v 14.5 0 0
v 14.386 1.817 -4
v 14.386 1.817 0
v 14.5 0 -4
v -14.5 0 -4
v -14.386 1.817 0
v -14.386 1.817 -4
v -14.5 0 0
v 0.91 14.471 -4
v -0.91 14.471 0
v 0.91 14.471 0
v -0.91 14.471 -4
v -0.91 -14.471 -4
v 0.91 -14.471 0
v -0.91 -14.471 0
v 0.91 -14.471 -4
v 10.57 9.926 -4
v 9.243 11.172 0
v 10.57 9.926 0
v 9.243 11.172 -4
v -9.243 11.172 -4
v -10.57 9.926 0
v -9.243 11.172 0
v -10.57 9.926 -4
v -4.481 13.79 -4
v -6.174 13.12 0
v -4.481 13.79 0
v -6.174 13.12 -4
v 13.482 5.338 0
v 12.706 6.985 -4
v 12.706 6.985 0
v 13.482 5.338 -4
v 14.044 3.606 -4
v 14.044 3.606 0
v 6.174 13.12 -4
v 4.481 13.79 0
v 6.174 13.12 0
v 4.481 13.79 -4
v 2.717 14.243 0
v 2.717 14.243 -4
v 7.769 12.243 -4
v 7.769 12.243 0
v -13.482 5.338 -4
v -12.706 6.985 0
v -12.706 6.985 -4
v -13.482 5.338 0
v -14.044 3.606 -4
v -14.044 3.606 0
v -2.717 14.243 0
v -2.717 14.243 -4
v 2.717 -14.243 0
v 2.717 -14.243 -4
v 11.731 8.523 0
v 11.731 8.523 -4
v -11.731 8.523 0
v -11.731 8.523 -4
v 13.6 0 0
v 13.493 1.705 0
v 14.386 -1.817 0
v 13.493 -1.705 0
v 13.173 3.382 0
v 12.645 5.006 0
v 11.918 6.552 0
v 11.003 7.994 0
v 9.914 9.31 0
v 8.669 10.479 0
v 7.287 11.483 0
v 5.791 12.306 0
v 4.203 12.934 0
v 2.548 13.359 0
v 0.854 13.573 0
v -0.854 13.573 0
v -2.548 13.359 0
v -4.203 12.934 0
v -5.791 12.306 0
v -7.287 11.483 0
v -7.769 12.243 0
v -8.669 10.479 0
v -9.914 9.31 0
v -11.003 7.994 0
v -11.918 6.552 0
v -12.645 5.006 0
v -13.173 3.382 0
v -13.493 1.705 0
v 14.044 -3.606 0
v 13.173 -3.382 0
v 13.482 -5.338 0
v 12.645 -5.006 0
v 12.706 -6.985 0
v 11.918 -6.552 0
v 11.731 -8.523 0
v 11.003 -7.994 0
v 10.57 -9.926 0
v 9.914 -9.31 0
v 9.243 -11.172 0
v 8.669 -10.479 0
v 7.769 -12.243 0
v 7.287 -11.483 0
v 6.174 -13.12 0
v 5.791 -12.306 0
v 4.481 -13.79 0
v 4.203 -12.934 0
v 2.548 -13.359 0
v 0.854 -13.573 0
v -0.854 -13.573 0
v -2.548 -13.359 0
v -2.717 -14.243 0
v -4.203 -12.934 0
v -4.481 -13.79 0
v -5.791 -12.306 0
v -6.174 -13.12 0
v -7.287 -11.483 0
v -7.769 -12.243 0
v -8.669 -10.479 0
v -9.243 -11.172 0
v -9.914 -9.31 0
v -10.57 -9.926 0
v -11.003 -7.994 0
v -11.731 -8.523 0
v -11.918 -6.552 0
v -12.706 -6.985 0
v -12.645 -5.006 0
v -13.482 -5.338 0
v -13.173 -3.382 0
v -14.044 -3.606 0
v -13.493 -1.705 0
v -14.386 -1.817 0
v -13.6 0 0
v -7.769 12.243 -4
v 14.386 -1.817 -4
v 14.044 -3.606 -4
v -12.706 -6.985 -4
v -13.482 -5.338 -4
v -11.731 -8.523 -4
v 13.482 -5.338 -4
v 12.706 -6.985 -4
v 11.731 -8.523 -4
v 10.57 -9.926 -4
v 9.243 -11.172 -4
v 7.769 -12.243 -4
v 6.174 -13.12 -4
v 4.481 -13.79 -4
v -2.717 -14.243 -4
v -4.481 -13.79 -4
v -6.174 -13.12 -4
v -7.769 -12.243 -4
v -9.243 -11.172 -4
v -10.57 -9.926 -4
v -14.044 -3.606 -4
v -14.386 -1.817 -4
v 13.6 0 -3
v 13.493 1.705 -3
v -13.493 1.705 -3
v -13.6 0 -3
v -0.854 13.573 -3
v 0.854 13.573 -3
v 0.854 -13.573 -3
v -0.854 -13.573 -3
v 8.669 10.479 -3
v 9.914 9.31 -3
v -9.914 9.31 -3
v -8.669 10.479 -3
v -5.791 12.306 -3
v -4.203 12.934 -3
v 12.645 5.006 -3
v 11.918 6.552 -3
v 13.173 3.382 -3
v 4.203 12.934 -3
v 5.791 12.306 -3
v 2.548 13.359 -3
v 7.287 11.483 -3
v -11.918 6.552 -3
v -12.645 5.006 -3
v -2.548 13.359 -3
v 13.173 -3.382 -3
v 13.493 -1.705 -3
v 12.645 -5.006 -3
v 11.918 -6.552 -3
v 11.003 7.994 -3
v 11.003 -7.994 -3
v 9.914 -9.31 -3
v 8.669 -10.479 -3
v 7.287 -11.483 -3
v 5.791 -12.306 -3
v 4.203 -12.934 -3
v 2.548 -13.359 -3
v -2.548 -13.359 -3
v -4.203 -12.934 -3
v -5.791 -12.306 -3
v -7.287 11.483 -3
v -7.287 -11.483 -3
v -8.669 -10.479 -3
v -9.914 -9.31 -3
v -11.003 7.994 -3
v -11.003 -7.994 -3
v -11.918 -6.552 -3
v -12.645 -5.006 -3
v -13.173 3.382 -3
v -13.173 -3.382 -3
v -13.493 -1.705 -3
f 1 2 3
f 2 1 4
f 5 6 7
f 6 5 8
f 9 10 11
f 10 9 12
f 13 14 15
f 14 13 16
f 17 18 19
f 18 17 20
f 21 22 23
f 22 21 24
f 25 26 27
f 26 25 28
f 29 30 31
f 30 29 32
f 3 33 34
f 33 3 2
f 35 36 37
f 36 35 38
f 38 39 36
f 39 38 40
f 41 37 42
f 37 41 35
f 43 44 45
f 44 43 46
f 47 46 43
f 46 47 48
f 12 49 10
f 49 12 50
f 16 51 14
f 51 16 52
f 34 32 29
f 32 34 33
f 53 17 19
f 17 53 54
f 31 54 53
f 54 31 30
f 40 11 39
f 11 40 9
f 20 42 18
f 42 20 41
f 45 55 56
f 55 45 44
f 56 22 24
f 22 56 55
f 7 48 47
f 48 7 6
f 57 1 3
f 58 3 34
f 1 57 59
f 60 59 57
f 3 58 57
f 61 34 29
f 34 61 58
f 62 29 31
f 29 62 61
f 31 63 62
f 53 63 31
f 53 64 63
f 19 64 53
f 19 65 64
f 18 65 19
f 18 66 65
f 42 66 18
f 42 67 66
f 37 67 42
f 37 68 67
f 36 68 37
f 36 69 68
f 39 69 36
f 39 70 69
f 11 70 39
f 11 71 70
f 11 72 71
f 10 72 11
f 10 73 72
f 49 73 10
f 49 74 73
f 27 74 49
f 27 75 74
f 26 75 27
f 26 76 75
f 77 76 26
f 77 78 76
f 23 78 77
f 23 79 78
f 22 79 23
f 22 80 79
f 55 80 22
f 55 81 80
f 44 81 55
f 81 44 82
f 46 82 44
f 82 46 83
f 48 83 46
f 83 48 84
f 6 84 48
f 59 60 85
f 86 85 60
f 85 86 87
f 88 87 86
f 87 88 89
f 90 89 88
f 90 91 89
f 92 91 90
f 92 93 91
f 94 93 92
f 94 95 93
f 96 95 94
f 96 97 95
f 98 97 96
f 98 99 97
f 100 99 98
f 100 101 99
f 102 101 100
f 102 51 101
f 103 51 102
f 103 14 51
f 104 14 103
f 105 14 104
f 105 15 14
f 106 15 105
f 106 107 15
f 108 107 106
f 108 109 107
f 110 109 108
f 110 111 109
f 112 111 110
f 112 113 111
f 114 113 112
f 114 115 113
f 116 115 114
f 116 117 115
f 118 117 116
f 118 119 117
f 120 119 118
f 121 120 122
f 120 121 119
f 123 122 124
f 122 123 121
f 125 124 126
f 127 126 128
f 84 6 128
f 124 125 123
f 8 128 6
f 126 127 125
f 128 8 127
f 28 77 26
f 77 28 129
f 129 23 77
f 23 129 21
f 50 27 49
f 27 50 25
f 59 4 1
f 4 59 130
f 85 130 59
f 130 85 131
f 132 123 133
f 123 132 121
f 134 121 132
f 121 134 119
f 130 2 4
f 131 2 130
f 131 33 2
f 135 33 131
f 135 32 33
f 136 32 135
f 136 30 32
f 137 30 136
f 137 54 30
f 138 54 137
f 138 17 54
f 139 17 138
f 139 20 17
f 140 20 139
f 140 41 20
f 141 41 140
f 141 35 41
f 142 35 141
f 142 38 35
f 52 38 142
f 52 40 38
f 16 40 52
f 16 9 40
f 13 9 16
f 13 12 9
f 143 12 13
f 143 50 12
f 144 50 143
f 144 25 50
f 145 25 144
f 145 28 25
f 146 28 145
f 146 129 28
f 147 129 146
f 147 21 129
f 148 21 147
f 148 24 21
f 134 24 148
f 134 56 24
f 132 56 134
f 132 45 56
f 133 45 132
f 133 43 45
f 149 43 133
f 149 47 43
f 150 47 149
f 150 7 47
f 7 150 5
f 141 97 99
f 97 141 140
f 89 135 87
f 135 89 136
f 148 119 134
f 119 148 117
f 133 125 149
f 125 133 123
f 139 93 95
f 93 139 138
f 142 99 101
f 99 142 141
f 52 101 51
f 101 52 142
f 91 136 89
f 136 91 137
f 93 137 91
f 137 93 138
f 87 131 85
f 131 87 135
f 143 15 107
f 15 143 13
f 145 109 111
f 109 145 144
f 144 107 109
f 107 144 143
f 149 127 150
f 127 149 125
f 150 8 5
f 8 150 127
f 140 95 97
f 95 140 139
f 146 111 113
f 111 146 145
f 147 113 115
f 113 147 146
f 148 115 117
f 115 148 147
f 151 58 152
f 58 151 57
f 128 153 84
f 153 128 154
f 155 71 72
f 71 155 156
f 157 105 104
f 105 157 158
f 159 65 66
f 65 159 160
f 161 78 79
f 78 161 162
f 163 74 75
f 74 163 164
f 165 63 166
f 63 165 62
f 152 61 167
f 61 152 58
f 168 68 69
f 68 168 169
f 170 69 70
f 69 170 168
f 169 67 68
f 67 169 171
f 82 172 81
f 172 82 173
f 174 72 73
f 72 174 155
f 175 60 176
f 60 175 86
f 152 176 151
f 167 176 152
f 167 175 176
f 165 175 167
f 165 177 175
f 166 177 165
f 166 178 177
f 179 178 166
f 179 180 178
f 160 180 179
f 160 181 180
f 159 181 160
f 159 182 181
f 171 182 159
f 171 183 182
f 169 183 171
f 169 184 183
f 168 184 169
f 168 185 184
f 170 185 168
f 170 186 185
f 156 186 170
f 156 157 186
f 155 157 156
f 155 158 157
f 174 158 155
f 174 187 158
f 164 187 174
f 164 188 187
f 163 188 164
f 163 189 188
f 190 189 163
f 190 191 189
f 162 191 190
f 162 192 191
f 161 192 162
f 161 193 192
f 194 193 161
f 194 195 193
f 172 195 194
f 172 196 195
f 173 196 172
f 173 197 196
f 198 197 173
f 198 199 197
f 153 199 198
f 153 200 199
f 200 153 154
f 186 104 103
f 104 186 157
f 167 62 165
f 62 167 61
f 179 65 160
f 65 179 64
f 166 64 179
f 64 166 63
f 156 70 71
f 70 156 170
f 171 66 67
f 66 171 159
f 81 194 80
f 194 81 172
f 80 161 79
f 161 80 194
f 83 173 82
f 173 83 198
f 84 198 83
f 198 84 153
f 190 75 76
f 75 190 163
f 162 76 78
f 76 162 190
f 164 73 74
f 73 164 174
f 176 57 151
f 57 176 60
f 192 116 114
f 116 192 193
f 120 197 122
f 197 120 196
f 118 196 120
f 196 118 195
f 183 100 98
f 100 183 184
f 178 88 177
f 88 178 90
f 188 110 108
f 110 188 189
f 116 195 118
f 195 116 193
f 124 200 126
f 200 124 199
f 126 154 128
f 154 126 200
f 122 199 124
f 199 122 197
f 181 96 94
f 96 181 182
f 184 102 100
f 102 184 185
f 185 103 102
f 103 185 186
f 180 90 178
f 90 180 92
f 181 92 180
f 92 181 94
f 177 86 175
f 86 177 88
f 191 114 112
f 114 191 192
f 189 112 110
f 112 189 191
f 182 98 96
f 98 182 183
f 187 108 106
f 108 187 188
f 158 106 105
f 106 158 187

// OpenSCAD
$fn = 50;


difference() {
	union() {
		translate(v = [0, 0, -4.0000000000]) {
			cylinder(h = 4, r = 14.5000000000);
		}
	}
	union() {
		#translate(v = [0, 0, -3.0000000000]) {
			cylinder(h = 3, r = 13.6000000000);
		}
	}
}
